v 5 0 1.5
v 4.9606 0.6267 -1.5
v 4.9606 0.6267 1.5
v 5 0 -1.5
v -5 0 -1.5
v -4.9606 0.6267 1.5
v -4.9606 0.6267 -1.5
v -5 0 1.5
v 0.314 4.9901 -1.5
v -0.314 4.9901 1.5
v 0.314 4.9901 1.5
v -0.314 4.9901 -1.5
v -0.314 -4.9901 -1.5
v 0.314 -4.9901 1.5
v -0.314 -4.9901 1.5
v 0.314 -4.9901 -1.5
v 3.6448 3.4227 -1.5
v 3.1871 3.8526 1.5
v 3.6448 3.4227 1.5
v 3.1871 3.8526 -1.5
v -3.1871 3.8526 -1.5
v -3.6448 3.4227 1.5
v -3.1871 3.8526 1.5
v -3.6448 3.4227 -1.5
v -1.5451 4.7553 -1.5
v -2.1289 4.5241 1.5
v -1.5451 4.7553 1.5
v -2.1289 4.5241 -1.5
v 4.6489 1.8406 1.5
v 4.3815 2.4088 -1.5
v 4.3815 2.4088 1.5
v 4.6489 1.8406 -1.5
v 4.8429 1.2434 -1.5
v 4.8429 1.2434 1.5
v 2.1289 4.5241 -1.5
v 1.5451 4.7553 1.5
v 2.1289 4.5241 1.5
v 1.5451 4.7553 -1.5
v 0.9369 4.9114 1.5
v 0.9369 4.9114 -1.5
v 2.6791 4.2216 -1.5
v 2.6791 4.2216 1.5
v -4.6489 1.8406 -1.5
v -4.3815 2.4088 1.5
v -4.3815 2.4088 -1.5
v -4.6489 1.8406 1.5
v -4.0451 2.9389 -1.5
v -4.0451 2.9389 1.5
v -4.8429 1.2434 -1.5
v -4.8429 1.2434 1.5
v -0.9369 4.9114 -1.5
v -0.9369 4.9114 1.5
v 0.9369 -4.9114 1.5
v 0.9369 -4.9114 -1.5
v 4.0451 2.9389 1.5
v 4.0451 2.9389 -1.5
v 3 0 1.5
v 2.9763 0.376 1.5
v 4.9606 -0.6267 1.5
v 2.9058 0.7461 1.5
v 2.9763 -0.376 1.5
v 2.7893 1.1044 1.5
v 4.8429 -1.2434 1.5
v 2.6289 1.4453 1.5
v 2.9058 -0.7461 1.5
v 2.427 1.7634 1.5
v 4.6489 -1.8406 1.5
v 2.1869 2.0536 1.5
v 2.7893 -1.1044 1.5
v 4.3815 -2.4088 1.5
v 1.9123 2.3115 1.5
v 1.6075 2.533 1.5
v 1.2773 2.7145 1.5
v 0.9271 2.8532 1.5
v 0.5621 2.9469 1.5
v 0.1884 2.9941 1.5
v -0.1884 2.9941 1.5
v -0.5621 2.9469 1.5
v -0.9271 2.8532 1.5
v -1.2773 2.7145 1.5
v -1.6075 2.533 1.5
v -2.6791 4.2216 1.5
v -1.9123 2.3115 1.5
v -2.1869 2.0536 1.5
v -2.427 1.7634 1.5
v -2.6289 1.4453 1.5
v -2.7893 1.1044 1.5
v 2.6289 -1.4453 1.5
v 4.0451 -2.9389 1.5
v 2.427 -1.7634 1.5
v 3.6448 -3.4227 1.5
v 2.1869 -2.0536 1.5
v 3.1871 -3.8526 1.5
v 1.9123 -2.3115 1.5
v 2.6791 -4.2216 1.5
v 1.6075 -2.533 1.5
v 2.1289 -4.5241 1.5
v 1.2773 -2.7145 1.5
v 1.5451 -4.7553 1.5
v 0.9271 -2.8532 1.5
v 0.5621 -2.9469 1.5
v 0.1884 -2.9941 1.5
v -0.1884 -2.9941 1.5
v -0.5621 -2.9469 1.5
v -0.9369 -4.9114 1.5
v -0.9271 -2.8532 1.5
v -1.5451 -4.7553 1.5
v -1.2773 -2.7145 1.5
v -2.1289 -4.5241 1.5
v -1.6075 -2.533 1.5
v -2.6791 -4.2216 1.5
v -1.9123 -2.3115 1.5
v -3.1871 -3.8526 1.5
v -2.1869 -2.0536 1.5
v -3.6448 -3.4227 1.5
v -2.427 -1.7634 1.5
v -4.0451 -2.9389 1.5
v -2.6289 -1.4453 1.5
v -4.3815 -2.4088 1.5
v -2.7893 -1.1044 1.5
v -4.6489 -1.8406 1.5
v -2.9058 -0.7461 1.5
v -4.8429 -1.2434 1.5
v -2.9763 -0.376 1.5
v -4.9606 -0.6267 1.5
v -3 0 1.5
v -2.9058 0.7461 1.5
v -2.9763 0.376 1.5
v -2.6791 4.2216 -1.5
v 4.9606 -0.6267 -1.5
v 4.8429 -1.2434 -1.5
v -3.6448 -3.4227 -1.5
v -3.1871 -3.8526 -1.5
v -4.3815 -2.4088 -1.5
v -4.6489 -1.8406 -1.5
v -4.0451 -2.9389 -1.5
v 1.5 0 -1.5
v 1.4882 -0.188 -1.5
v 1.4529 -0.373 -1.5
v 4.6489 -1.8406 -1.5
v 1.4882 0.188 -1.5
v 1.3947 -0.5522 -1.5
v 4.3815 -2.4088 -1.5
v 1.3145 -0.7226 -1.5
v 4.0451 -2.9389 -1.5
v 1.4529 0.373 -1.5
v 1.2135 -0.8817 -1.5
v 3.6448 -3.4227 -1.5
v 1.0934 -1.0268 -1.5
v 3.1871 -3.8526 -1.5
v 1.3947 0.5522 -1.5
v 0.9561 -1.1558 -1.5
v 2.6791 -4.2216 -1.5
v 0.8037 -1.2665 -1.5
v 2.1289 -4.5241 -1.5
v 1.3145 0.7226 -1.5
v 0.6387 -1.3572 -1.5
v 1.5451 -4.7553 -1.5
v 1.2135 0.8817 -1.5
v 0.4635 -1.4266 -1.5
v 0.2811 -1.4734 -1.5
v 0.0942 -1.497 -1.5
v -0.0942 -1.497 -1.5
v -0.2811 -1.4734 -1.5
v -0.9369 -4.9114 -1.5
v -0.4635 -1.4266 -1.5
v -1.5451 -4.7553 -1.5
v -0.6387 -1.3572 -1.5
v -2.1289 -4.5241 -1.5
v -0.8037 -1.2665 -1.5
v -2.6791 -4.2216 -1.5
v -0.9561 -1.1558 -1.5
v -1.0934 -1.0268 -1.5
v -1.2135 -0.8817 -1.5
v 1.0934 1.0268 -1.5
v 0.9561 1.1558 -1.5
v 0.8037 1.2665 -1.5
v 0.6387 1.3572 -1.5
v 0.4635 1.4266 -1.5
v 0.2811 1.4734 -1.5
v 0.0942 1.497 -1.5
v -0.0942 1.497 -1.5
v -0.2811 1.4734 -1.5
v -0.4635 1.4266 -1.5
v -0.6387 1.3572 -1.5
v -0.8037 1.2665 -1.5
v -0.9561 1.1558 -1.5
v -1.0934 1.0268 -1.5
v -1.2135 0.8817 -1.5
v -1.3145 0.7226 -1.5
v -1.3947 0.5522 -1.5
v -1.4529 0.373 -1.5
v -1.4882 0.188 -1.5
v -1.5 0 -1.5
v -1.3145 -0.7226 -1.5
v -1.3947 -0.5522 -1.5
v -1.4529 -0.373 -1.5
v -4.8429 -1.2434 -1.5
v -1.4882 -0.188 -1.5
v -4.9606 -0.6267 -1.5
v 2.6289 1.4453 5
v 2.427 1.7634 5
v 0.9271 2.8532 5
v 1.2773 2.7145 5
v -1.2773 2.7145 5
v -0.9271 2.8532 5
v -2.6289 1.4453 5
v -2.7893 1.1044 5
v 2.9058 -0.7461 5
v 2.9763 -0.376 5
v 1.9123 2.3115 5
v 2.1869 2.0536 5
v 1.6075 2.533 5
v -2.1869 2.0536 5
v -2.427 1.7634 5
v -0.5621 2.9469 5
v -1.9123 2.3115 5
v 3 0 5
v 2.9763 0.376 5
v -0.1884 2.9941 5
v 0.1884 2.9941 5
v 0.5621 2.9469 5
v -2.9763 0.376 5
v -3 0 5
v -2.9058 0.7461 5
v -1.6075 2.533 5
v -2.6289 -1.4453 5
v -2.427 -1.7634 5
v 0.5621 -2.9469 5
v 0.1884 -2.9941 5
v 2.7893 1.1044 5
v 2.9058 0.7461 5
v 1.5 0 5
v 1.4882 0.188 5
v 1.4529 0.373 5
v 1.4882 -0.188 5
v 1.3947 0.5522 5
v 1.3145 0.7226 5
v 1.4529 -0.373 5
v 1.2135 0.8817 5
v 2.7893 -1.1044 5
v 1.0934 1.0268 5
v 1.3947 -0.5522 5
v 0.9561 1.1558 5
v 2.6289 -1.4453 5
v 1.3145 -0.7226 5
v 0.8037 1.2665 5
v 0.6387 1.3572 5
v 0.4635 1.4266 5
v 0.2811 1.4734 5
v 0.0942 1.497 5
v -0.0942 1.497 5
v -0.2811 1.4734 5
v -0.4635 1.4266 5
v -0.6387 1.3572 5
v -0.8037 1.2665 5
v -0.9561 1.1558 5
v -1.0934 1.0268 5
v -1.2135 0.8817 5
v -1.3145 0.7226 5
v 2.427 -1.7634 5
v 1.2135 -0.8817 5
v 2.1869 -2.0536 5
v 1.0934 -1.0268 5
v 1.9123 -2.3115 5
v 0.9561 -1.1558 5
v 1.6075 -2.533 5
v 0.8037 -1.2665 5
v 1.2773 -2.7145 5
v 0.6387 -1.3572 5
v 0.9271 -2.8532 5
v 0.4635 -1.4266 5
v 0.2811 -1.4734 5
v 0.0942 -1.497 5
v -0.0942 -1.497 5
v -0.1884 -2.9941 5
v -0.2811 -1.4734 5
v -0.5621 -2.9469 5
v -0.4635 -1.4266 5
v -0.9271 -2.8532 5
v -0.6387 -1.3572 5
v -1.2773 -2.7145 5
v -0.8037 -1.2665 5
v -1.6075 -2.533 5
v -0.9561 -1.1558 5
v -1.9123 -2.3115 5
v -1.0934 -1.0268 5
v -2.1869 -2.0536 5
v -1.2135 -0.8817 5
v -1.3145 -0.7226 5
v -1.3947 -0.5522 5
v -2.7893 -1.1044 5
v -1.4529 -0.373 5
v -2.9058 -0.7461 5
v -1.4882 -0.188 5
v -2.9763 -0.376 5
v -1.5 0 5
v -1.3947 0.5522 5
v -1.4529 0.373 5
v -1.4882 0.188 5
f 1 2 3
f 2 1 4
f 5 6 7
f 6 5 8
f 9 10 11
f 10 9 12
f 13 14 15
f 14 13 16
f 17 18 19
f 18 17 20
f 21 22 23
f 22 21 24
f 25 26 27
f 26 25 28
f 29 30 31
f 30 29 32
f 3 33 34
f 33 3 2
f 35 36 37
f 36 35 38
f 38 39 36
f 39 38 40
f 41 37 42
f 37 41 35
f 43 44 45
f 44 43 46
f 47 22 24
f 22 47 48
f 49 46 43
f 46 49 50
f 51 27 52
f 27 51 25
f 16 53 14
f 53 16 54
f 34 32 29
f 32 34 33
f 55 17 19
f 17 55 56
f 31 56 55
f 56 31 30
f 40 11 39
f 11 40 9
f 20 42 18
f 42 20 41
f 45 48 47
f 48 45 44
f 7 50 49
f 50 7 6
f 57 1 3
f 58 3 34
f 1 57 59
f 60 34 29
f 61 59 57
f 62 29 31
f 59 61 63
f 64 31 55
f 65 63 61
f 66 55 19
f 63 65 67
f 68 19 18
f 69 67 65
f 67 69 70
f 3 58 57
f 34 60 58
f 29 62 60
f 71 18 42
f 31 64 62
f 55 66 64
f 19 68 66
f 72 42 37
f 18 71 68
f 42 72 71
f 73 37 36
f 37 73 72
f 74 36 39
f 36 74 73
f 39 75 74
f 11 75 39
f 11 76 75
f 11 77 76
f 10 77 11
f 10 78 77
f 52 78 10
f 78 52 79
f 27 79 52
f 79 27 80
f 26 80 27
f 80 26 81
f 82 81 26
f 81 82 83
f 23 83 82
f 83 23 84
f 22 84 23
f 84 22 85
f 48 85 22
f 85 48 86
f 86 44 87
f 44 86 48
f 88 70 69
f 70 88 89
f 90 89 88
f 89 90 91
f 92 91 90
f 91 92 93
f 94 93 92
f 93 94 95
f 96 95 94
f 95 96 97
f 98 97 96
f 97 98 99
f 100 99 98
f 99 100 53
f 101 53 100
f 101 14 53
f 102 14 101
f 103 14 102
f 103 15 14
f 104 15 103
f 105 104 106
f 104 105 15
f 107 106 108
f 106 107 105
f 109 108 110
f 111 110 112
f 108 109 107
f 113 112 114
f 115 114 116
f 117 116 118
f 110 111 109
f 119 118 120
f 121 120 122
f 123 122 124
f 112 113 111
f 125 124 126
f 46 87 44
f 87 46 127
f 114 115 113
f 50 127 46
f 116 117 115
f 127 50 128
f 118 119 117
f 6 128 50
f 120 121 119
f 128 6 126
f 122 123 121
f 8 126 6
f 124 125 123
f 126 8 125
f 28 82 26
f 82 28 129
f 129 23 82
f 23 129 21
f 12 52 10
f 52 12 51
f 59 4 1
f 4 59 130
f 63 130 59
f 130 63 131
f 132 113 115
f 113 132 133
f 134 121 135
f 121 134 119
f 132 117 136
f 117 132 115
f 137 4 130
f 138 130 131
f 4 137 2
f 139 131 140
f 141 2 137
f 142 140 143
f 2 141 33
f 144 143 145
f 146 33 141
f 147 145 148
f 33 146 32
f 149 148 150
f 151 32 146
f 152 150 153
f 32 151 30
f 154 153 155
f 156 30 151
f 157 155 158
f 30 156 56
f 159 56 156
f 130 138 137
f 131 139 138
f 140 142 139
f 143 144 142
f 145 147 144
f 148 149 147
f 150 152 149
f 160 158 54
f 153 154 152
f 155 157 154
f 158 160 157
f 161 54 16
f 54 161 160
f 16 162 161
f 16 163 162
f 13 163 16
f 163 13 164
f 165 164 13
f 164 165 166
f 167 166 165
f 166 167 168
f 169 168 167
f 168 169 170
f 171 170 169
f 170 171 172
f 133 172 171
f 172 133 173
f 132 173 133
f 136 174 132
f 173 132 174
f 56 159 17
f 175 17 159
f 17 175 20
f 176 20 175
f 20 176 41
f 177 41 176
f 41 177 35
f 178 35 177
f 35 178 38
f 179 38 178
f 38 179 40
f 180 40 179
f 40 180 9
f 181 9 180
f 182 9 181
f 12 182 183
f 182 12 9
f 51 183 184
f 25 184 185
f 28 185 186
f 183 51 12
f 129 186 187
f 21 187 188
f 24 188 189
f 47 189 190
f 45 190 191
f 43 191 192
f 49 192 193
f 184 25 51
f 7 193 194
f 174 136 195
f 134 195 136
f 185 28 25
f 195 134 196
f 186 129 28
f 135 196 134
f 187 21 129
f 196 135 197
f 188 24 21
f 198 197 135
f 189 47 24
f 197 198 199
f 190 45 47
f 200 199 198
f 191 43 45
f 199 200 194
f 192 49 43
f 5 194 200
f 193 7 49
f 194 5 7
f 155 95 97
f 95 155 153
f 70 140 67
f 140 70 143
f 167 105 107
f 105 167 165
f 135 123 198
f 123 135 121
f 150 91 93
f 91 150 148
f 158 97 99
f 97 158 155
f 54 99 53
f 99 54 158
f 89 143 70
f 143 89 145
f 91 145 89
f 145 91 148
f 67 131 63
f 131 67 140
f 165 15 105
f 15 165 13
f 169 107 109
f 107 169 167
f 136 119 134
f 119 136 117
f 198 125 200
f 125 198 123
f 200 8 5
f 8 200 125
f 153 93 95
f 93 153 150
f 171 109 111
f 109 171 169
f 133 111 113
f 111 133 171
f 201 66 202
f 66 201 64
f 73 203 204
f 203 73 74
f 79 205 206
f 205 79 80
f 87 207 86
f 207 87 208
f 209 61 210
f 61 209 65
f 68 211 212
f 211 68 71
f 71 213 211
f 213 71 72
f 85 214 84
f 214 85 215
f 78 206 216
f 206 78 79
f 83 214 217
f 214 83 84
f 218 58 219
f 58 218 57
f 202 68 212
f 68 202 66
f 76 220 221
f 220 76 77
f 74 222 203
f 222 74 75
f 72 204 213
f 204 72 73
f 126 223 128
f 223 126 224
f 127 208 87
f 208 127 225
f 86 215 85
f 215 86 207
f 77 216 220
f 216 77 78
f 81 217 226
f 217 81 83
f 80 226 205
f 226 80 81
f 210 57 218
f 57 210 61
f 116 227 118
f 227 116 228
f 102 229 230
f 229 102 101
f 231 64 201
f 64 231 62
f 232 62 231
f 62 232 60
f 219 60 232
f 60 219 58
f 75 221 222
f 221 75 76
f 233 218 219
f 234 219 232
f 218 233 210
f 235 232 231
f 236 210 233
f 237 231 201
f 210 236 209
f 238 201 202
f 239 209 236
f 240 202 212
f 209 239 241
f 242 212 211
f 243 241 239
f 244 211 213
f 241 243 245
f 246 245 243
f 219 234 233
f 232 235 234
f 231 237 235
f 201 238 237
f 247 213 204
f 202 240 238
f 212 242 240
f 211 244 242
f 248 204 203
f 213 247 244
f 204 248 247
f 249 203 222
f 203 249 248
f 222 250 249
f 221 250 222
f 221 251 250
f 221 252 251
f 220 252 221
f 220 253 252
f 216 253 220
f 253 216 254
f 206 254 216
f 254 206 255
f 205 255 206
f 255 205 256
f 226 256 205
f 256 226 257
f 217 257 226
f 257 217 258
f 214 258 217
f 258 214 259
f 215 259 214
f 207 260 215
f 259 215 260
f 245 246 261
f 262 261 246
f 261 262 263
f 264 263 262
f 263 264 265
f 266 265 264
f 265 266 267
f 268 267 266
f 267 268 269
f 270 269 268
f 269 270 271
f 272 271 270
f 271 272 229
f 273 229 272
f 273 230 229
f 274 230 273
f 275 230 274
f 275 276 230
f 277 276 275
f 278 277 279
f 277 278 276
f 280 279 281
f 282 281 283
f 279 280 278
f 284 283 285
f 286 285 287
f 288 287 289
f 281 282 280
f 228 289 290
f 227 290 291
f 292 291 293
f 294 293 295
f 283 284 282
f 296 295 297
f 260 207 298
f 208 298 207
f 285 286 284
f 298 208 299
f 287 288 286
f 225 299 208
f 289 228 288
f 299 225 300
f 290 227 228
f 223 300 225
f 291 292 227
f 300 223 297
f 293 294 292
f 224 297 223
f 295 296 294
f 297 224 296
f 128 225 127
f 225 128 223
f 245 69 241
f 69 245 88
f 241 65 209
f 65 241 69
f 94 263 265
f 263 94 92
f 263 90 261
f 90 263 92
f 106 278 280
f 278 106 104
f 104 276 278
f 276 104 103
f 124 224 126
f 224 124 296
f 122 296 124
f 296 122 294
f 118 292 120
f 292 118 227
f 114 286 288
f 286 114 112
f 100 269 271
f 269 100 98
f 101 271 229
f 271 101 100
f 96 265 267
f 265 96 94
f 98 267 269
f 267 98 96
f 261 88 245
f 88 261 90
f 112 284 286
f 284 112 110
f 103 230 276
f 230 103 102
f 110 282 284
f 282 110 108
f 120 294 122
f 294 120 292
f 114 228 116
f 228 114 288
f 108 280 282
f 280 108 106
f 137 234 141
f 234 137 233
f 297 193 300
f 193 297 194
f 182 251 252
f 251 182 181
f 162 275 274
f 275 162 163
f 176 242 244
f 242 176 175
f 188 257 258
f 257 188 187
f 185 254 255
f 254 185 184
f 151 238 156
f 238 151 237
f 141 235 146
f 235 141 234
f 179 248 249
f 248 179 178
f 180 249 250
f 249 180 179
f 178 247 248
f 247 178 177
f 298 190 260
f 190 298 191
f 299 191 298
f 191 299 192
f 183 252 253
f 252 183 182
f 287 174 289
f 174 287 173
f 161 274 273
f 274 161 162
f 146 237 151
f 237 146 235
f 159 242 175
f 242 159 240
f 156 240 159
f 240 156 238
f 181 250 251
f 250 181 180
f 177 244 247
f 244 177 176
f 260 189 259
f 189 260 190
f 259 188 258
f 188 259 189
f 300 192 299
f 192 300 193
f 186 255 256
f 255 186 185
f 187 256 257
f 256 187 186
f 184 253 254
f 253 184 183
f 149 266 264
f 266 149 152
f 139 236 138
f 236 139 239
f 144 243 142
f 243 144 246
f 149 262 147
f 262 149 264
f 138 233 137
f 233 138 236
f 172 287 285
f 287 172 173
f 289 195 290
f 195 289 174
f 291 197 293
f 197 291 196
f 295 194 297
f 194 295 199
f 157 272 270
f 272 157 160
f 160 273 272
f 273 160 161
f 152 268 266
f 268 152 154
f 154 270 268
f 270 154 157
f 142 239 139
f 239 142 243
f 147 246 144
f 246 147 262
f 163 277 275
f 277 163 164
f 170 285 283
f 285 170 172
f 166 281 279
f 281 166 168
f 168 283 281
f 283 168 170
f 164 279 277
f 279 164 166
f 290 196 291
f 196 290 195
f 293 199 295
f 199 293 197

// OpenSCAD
$fn = 50;


difference() {
	union() {
		translate(v = [0, 0, -1.5000000000]) {
			cylinder(h = 3, r = 5.0000000000);
		}
		translate(v = [0, 0, -1.5000000000]) {
			cylinder(h = 6.5000000000, r = 3.0000000000);
		}
	}
	union() {
		translate(v = [0, 0, -100.0000000000]) {
			cylinder(h = 200, r = 1.5000000000);
		}
	}
}
